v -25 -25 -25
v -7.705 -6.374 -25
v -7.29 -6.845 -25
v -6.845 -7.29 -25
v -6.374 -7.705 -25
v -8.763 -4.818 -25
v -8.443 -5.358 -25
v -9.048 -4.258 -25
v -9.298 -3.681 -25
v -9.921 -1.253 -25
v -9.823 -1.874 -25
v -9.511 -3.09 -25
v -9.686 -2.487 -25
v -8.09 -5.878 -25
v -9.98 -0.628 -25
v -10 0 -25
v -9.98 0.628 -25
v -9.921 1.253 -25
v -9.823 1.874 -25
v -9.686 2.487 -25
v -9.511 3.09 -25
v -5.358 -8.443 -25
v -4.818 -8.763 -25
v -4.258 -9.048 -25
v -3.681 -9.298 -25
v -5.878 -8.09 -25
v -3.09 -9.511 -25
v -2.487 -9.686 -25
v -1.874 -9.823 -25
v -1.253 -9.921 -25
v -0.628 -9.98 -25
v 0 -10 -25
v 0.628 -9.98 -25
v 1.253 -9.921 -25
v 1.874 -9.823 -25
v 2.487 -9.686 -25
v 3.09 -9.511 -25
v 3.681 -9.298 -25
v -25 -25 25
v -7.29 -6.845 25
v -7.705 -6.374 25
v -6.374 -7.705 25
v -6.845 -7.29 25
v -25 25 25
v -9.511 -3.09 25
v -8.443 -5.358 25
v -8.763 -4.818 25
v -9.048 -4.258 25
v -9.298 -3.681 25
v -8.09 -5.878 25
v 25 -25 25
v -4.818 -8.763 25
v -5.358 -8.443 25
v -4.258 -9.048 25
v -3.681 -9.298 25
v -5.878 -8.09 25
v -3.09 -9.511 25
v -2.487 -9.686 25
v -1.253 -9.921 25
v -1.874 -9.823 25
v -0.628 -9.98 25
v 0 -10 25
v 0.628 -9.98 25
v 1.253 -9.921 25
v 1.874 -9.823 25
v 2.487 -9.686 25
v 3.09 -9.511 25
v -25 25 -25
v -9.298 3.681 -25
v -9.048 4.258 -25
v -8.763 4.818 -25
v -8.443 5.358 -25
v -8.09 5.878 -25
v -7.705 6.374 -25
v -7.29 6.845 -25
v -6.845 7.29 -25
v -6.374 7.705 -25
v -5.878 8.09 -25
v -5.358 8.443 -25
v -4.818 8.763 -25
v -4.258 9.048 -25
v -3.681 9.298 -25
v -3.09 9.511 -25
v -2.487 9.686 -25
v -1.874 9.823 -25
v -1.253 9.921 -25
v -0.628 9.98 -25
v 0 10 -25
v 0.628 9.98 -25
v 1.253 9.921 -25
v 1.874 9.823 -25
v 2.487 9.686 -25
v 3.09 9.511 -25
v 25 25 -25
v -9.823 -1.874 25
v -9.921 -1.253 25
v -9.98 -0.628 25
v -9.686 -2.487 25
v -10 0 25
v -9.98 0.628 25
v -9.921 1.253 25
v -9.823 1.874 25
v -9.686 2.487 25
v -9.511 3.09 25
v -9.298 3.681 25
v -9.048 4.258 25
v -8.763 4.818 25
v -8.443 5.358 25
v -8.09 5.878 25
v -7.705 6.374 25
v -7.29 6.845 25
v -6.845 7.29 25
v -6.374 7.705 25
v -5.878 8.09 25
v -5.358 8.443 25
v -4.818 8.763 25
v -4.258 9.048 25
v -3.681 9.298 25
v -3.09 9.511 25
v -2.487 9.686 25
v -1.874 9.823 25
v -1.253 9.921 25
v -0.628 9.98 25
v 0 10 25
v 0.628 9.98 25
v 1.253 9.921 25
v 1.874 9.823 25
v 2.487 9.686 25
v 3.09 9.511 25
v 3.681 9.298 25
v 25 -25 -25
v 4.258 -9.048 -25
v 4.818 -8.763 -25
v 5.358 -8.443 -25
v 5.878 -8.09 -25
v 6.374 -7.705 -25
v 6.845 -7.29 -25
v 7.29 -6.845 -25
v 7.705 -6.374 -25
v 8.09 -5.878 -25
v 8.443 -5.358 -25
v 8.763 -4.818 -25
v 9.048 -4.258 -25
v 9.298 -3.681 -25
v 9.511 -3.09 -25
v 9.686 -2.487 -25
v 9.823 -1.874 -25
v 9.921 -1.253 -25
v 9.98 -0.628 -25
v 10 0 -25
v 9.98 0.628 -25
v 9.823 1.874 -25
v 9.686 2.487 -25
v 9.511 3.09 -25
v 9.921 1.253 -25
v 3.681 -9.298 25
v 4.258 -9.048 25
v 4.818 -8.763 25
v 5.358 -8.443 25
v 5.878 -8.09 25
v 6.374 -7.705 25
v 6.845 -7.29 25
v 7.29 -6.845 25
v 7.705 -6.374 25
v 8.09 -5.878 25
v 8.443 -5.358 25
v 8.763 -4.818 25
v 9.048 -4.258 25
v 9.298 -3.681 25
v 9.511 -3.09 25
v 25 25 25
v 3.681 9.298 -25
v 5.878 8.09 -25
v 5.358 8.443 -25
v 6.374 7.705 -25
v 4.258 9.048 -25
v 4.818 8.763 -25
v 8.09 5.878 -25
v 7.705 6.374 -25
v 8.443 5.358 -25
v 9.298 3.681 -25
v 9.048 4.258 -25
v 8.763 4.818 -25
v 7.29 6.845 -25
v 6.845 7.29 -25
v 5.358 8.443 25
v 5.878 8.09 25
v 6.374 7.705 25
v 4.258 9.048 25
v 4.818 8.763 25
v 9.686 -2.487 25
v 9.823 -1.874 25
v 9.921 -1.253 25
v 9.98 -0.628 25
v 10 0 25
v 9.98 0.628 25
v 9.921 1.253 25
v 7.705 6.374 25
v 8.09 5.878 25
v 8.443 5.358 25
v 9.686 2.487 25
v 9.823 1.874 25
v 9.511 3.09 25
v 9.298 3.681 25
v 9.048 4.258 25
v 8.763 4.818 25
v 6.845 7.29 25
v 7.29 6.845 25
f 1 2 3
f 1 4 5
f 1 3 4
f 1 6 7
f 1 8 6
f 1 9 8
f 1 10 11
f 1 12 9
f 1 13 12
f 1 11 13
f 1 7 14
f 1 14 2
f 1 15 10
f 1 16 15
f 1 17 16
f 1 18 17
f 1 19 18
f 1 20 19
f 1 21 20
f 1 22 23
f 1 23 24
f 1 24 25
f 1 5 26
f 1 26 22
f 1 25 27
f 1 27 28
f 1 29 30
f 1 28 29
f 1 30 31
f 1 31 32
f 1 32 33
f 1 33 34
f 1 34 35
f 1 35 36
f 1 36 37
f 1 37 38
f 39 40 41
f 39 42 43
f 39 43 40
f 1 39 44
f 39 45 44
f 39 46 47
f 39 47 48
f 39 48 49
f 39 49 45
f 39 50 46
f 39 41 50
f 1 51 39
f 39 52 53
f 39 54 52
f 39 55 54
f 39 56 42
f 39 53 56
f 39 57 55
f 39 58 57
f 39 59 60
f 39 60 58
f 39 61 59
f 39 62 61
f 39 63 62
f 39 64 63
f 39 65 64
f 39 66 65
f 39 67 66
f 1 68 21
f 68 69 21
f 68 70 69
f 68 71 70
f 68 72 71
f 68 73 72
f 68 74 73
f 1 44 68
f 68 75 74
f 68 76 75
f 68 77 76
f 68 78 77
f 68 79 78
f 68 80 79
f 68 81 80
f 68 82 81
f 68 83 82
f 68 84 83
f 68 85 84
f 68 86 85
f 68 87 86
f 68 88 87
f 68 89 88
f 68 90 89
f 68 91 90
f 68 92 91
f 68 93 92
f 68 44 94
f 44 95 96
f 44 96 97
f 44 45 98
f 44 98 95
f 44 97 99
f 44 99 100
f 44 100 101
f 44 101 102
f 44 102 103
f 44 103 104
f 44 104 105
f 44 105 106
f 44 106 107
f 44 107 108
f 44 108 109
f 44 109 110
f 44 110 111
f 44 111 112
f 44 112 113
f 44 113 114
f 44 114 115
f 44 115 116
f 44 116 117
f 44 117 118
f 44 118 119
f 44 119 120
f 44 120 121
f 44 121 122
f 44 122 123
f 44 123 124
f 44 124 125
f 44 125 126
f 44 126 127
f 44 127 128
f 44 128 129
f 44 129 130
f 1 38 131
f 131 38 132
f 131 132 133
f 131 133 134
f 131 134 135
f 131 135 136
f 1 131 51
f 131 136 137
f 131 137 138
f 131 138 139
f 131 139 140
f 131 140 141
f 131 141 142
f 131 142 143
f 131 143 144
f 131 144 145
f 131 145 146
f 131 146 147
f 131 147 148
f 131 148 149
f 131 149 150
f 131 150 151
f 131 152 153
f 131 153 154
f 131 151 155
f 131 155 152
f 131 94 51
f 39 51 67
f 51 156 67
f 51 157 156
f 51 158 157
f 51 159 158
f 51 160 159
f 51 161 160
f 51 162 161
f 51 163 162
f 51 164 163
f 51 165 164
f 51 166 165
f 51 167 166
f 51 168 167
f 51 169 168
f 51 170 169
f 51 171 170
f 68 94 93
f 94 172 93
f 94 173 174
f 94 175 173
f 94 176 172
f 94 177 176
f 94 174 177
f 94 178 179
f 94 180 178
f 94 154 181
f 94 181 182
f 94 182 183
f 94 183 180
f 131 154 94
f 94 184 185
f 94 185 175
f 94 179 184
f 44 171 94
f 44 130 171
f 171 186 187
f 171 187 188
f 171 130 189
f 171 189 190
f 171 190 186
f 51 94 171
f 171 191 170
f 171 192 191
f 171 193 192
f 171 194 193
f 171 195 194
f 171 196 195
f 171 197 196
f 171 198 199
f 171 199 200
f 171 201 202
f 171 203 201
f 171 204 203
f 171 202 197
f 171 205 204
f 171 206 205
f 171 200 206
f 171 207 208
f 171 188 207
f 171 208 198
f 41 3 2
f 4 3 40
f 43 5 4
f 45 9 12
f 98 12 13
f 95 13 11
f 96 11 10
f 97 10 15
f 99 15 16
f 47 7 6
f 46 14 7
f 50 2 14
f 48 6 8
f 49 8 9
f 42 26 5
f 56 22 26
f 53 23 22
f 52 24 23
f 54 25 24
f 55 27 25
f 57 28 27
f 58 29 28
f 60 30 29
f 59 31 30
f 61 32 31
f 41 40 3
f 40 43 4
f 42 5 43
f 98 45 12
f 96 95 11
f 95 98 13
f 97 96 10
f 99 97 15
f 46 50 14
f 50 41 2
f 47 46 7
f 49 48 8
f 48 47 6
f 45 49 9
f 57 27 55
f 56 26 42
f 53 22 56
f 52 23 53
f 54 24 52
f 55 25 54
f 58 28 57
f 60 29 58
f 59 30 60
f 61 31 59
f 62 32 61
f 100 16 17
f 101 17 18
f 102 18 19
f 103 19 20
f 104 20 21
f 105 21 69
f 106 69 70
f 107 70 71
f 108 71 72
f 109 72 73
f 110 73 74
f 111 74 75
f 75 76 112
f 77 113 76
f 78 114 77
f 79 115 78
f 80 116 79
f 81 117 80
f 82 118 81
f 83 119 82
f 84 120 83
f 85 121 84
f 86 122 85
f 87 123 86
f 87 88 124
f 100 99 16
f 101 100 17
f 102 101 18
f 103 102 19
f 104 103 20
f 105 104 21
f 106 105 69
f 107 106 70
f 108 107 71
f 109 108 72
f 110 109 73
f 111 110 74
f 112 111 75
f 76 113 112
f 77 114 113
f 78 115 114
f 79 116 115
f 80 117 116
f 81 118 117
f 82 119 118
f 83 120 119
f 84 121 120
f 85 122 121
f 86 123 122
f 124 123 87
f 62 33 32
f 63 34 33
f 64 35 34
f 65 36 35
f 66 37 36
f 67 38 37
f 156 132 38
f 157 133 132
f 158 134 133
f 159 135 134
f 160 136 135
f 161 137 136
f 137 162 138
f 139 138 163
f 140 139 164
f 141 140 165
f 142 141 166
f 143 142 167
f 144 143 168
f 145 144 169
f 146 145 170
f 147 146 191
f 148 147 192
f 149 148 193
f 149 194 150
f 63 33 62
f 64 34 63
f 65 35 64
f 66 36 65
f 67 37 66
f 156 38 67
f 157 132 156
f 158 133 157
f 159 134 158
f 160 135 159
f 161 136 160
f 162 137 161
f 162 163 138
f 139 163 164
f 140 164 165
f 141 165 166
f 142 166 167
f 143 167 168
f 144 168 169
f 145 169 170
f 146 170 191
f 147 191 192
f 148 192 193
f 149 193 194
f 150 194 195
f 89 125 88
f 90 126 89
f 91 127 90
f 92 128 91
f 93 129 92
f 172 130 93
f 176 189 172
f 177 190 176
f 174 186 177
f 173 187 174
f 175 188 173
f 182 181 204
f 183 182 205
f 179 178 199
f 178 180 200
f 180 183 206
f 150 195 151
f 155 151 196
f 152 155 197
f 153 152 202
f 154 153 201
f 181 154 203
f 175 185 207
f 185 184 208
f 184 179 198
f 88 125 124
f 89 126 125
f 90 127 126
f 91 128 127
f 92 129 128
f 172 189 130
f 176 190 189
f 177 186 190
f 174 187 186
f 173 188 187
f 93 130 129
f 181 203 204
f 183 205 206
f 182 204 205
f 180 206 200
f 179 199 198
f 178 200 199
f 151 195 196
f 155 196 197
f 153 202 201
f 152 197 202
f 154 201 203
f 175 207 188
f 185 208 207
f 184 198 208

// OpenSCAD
$fn = 100;

difference() {
    // 50mm 角の立方体
    cube([50, 50, 50], center = true);
    
    // 直径 20mm の貫通穴（Z 軸方向）
    cylinder(h = 52, d = 20, center = true);
}
